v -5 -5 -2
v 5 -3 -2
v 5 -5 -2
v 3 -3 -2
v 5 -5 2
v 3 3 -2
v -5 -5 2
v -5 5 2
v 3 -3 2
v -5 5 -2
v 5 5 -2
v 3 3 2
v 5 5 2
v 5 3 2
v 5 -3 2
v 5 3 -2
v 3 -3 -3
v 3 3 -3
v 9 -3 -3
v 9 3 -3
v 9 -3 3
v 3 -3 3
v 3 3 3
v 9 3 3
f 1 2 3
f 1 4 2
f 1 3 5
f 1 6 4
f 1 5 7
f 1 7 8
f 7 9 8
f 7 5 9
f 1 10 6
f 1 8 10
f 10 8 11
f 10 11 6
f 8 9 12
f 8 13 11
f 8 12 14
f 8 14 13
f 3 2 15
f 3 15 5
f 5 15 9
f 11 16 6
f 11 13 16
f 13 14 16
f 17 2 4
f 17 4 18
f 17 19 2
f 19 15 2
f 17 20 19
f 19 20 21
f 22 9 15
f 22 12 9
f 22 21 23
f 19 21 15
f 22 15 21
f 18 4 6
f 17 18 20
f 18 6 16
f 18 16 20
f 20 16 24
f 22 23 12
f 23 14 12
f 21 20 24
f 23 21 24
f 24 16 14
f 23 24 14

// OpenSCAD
// render() is a caching hint, not geometry: the result must equal the union.
render() { cube([10,10,4], center = true); translate([6,0,0]) cube(6, center = true); }
